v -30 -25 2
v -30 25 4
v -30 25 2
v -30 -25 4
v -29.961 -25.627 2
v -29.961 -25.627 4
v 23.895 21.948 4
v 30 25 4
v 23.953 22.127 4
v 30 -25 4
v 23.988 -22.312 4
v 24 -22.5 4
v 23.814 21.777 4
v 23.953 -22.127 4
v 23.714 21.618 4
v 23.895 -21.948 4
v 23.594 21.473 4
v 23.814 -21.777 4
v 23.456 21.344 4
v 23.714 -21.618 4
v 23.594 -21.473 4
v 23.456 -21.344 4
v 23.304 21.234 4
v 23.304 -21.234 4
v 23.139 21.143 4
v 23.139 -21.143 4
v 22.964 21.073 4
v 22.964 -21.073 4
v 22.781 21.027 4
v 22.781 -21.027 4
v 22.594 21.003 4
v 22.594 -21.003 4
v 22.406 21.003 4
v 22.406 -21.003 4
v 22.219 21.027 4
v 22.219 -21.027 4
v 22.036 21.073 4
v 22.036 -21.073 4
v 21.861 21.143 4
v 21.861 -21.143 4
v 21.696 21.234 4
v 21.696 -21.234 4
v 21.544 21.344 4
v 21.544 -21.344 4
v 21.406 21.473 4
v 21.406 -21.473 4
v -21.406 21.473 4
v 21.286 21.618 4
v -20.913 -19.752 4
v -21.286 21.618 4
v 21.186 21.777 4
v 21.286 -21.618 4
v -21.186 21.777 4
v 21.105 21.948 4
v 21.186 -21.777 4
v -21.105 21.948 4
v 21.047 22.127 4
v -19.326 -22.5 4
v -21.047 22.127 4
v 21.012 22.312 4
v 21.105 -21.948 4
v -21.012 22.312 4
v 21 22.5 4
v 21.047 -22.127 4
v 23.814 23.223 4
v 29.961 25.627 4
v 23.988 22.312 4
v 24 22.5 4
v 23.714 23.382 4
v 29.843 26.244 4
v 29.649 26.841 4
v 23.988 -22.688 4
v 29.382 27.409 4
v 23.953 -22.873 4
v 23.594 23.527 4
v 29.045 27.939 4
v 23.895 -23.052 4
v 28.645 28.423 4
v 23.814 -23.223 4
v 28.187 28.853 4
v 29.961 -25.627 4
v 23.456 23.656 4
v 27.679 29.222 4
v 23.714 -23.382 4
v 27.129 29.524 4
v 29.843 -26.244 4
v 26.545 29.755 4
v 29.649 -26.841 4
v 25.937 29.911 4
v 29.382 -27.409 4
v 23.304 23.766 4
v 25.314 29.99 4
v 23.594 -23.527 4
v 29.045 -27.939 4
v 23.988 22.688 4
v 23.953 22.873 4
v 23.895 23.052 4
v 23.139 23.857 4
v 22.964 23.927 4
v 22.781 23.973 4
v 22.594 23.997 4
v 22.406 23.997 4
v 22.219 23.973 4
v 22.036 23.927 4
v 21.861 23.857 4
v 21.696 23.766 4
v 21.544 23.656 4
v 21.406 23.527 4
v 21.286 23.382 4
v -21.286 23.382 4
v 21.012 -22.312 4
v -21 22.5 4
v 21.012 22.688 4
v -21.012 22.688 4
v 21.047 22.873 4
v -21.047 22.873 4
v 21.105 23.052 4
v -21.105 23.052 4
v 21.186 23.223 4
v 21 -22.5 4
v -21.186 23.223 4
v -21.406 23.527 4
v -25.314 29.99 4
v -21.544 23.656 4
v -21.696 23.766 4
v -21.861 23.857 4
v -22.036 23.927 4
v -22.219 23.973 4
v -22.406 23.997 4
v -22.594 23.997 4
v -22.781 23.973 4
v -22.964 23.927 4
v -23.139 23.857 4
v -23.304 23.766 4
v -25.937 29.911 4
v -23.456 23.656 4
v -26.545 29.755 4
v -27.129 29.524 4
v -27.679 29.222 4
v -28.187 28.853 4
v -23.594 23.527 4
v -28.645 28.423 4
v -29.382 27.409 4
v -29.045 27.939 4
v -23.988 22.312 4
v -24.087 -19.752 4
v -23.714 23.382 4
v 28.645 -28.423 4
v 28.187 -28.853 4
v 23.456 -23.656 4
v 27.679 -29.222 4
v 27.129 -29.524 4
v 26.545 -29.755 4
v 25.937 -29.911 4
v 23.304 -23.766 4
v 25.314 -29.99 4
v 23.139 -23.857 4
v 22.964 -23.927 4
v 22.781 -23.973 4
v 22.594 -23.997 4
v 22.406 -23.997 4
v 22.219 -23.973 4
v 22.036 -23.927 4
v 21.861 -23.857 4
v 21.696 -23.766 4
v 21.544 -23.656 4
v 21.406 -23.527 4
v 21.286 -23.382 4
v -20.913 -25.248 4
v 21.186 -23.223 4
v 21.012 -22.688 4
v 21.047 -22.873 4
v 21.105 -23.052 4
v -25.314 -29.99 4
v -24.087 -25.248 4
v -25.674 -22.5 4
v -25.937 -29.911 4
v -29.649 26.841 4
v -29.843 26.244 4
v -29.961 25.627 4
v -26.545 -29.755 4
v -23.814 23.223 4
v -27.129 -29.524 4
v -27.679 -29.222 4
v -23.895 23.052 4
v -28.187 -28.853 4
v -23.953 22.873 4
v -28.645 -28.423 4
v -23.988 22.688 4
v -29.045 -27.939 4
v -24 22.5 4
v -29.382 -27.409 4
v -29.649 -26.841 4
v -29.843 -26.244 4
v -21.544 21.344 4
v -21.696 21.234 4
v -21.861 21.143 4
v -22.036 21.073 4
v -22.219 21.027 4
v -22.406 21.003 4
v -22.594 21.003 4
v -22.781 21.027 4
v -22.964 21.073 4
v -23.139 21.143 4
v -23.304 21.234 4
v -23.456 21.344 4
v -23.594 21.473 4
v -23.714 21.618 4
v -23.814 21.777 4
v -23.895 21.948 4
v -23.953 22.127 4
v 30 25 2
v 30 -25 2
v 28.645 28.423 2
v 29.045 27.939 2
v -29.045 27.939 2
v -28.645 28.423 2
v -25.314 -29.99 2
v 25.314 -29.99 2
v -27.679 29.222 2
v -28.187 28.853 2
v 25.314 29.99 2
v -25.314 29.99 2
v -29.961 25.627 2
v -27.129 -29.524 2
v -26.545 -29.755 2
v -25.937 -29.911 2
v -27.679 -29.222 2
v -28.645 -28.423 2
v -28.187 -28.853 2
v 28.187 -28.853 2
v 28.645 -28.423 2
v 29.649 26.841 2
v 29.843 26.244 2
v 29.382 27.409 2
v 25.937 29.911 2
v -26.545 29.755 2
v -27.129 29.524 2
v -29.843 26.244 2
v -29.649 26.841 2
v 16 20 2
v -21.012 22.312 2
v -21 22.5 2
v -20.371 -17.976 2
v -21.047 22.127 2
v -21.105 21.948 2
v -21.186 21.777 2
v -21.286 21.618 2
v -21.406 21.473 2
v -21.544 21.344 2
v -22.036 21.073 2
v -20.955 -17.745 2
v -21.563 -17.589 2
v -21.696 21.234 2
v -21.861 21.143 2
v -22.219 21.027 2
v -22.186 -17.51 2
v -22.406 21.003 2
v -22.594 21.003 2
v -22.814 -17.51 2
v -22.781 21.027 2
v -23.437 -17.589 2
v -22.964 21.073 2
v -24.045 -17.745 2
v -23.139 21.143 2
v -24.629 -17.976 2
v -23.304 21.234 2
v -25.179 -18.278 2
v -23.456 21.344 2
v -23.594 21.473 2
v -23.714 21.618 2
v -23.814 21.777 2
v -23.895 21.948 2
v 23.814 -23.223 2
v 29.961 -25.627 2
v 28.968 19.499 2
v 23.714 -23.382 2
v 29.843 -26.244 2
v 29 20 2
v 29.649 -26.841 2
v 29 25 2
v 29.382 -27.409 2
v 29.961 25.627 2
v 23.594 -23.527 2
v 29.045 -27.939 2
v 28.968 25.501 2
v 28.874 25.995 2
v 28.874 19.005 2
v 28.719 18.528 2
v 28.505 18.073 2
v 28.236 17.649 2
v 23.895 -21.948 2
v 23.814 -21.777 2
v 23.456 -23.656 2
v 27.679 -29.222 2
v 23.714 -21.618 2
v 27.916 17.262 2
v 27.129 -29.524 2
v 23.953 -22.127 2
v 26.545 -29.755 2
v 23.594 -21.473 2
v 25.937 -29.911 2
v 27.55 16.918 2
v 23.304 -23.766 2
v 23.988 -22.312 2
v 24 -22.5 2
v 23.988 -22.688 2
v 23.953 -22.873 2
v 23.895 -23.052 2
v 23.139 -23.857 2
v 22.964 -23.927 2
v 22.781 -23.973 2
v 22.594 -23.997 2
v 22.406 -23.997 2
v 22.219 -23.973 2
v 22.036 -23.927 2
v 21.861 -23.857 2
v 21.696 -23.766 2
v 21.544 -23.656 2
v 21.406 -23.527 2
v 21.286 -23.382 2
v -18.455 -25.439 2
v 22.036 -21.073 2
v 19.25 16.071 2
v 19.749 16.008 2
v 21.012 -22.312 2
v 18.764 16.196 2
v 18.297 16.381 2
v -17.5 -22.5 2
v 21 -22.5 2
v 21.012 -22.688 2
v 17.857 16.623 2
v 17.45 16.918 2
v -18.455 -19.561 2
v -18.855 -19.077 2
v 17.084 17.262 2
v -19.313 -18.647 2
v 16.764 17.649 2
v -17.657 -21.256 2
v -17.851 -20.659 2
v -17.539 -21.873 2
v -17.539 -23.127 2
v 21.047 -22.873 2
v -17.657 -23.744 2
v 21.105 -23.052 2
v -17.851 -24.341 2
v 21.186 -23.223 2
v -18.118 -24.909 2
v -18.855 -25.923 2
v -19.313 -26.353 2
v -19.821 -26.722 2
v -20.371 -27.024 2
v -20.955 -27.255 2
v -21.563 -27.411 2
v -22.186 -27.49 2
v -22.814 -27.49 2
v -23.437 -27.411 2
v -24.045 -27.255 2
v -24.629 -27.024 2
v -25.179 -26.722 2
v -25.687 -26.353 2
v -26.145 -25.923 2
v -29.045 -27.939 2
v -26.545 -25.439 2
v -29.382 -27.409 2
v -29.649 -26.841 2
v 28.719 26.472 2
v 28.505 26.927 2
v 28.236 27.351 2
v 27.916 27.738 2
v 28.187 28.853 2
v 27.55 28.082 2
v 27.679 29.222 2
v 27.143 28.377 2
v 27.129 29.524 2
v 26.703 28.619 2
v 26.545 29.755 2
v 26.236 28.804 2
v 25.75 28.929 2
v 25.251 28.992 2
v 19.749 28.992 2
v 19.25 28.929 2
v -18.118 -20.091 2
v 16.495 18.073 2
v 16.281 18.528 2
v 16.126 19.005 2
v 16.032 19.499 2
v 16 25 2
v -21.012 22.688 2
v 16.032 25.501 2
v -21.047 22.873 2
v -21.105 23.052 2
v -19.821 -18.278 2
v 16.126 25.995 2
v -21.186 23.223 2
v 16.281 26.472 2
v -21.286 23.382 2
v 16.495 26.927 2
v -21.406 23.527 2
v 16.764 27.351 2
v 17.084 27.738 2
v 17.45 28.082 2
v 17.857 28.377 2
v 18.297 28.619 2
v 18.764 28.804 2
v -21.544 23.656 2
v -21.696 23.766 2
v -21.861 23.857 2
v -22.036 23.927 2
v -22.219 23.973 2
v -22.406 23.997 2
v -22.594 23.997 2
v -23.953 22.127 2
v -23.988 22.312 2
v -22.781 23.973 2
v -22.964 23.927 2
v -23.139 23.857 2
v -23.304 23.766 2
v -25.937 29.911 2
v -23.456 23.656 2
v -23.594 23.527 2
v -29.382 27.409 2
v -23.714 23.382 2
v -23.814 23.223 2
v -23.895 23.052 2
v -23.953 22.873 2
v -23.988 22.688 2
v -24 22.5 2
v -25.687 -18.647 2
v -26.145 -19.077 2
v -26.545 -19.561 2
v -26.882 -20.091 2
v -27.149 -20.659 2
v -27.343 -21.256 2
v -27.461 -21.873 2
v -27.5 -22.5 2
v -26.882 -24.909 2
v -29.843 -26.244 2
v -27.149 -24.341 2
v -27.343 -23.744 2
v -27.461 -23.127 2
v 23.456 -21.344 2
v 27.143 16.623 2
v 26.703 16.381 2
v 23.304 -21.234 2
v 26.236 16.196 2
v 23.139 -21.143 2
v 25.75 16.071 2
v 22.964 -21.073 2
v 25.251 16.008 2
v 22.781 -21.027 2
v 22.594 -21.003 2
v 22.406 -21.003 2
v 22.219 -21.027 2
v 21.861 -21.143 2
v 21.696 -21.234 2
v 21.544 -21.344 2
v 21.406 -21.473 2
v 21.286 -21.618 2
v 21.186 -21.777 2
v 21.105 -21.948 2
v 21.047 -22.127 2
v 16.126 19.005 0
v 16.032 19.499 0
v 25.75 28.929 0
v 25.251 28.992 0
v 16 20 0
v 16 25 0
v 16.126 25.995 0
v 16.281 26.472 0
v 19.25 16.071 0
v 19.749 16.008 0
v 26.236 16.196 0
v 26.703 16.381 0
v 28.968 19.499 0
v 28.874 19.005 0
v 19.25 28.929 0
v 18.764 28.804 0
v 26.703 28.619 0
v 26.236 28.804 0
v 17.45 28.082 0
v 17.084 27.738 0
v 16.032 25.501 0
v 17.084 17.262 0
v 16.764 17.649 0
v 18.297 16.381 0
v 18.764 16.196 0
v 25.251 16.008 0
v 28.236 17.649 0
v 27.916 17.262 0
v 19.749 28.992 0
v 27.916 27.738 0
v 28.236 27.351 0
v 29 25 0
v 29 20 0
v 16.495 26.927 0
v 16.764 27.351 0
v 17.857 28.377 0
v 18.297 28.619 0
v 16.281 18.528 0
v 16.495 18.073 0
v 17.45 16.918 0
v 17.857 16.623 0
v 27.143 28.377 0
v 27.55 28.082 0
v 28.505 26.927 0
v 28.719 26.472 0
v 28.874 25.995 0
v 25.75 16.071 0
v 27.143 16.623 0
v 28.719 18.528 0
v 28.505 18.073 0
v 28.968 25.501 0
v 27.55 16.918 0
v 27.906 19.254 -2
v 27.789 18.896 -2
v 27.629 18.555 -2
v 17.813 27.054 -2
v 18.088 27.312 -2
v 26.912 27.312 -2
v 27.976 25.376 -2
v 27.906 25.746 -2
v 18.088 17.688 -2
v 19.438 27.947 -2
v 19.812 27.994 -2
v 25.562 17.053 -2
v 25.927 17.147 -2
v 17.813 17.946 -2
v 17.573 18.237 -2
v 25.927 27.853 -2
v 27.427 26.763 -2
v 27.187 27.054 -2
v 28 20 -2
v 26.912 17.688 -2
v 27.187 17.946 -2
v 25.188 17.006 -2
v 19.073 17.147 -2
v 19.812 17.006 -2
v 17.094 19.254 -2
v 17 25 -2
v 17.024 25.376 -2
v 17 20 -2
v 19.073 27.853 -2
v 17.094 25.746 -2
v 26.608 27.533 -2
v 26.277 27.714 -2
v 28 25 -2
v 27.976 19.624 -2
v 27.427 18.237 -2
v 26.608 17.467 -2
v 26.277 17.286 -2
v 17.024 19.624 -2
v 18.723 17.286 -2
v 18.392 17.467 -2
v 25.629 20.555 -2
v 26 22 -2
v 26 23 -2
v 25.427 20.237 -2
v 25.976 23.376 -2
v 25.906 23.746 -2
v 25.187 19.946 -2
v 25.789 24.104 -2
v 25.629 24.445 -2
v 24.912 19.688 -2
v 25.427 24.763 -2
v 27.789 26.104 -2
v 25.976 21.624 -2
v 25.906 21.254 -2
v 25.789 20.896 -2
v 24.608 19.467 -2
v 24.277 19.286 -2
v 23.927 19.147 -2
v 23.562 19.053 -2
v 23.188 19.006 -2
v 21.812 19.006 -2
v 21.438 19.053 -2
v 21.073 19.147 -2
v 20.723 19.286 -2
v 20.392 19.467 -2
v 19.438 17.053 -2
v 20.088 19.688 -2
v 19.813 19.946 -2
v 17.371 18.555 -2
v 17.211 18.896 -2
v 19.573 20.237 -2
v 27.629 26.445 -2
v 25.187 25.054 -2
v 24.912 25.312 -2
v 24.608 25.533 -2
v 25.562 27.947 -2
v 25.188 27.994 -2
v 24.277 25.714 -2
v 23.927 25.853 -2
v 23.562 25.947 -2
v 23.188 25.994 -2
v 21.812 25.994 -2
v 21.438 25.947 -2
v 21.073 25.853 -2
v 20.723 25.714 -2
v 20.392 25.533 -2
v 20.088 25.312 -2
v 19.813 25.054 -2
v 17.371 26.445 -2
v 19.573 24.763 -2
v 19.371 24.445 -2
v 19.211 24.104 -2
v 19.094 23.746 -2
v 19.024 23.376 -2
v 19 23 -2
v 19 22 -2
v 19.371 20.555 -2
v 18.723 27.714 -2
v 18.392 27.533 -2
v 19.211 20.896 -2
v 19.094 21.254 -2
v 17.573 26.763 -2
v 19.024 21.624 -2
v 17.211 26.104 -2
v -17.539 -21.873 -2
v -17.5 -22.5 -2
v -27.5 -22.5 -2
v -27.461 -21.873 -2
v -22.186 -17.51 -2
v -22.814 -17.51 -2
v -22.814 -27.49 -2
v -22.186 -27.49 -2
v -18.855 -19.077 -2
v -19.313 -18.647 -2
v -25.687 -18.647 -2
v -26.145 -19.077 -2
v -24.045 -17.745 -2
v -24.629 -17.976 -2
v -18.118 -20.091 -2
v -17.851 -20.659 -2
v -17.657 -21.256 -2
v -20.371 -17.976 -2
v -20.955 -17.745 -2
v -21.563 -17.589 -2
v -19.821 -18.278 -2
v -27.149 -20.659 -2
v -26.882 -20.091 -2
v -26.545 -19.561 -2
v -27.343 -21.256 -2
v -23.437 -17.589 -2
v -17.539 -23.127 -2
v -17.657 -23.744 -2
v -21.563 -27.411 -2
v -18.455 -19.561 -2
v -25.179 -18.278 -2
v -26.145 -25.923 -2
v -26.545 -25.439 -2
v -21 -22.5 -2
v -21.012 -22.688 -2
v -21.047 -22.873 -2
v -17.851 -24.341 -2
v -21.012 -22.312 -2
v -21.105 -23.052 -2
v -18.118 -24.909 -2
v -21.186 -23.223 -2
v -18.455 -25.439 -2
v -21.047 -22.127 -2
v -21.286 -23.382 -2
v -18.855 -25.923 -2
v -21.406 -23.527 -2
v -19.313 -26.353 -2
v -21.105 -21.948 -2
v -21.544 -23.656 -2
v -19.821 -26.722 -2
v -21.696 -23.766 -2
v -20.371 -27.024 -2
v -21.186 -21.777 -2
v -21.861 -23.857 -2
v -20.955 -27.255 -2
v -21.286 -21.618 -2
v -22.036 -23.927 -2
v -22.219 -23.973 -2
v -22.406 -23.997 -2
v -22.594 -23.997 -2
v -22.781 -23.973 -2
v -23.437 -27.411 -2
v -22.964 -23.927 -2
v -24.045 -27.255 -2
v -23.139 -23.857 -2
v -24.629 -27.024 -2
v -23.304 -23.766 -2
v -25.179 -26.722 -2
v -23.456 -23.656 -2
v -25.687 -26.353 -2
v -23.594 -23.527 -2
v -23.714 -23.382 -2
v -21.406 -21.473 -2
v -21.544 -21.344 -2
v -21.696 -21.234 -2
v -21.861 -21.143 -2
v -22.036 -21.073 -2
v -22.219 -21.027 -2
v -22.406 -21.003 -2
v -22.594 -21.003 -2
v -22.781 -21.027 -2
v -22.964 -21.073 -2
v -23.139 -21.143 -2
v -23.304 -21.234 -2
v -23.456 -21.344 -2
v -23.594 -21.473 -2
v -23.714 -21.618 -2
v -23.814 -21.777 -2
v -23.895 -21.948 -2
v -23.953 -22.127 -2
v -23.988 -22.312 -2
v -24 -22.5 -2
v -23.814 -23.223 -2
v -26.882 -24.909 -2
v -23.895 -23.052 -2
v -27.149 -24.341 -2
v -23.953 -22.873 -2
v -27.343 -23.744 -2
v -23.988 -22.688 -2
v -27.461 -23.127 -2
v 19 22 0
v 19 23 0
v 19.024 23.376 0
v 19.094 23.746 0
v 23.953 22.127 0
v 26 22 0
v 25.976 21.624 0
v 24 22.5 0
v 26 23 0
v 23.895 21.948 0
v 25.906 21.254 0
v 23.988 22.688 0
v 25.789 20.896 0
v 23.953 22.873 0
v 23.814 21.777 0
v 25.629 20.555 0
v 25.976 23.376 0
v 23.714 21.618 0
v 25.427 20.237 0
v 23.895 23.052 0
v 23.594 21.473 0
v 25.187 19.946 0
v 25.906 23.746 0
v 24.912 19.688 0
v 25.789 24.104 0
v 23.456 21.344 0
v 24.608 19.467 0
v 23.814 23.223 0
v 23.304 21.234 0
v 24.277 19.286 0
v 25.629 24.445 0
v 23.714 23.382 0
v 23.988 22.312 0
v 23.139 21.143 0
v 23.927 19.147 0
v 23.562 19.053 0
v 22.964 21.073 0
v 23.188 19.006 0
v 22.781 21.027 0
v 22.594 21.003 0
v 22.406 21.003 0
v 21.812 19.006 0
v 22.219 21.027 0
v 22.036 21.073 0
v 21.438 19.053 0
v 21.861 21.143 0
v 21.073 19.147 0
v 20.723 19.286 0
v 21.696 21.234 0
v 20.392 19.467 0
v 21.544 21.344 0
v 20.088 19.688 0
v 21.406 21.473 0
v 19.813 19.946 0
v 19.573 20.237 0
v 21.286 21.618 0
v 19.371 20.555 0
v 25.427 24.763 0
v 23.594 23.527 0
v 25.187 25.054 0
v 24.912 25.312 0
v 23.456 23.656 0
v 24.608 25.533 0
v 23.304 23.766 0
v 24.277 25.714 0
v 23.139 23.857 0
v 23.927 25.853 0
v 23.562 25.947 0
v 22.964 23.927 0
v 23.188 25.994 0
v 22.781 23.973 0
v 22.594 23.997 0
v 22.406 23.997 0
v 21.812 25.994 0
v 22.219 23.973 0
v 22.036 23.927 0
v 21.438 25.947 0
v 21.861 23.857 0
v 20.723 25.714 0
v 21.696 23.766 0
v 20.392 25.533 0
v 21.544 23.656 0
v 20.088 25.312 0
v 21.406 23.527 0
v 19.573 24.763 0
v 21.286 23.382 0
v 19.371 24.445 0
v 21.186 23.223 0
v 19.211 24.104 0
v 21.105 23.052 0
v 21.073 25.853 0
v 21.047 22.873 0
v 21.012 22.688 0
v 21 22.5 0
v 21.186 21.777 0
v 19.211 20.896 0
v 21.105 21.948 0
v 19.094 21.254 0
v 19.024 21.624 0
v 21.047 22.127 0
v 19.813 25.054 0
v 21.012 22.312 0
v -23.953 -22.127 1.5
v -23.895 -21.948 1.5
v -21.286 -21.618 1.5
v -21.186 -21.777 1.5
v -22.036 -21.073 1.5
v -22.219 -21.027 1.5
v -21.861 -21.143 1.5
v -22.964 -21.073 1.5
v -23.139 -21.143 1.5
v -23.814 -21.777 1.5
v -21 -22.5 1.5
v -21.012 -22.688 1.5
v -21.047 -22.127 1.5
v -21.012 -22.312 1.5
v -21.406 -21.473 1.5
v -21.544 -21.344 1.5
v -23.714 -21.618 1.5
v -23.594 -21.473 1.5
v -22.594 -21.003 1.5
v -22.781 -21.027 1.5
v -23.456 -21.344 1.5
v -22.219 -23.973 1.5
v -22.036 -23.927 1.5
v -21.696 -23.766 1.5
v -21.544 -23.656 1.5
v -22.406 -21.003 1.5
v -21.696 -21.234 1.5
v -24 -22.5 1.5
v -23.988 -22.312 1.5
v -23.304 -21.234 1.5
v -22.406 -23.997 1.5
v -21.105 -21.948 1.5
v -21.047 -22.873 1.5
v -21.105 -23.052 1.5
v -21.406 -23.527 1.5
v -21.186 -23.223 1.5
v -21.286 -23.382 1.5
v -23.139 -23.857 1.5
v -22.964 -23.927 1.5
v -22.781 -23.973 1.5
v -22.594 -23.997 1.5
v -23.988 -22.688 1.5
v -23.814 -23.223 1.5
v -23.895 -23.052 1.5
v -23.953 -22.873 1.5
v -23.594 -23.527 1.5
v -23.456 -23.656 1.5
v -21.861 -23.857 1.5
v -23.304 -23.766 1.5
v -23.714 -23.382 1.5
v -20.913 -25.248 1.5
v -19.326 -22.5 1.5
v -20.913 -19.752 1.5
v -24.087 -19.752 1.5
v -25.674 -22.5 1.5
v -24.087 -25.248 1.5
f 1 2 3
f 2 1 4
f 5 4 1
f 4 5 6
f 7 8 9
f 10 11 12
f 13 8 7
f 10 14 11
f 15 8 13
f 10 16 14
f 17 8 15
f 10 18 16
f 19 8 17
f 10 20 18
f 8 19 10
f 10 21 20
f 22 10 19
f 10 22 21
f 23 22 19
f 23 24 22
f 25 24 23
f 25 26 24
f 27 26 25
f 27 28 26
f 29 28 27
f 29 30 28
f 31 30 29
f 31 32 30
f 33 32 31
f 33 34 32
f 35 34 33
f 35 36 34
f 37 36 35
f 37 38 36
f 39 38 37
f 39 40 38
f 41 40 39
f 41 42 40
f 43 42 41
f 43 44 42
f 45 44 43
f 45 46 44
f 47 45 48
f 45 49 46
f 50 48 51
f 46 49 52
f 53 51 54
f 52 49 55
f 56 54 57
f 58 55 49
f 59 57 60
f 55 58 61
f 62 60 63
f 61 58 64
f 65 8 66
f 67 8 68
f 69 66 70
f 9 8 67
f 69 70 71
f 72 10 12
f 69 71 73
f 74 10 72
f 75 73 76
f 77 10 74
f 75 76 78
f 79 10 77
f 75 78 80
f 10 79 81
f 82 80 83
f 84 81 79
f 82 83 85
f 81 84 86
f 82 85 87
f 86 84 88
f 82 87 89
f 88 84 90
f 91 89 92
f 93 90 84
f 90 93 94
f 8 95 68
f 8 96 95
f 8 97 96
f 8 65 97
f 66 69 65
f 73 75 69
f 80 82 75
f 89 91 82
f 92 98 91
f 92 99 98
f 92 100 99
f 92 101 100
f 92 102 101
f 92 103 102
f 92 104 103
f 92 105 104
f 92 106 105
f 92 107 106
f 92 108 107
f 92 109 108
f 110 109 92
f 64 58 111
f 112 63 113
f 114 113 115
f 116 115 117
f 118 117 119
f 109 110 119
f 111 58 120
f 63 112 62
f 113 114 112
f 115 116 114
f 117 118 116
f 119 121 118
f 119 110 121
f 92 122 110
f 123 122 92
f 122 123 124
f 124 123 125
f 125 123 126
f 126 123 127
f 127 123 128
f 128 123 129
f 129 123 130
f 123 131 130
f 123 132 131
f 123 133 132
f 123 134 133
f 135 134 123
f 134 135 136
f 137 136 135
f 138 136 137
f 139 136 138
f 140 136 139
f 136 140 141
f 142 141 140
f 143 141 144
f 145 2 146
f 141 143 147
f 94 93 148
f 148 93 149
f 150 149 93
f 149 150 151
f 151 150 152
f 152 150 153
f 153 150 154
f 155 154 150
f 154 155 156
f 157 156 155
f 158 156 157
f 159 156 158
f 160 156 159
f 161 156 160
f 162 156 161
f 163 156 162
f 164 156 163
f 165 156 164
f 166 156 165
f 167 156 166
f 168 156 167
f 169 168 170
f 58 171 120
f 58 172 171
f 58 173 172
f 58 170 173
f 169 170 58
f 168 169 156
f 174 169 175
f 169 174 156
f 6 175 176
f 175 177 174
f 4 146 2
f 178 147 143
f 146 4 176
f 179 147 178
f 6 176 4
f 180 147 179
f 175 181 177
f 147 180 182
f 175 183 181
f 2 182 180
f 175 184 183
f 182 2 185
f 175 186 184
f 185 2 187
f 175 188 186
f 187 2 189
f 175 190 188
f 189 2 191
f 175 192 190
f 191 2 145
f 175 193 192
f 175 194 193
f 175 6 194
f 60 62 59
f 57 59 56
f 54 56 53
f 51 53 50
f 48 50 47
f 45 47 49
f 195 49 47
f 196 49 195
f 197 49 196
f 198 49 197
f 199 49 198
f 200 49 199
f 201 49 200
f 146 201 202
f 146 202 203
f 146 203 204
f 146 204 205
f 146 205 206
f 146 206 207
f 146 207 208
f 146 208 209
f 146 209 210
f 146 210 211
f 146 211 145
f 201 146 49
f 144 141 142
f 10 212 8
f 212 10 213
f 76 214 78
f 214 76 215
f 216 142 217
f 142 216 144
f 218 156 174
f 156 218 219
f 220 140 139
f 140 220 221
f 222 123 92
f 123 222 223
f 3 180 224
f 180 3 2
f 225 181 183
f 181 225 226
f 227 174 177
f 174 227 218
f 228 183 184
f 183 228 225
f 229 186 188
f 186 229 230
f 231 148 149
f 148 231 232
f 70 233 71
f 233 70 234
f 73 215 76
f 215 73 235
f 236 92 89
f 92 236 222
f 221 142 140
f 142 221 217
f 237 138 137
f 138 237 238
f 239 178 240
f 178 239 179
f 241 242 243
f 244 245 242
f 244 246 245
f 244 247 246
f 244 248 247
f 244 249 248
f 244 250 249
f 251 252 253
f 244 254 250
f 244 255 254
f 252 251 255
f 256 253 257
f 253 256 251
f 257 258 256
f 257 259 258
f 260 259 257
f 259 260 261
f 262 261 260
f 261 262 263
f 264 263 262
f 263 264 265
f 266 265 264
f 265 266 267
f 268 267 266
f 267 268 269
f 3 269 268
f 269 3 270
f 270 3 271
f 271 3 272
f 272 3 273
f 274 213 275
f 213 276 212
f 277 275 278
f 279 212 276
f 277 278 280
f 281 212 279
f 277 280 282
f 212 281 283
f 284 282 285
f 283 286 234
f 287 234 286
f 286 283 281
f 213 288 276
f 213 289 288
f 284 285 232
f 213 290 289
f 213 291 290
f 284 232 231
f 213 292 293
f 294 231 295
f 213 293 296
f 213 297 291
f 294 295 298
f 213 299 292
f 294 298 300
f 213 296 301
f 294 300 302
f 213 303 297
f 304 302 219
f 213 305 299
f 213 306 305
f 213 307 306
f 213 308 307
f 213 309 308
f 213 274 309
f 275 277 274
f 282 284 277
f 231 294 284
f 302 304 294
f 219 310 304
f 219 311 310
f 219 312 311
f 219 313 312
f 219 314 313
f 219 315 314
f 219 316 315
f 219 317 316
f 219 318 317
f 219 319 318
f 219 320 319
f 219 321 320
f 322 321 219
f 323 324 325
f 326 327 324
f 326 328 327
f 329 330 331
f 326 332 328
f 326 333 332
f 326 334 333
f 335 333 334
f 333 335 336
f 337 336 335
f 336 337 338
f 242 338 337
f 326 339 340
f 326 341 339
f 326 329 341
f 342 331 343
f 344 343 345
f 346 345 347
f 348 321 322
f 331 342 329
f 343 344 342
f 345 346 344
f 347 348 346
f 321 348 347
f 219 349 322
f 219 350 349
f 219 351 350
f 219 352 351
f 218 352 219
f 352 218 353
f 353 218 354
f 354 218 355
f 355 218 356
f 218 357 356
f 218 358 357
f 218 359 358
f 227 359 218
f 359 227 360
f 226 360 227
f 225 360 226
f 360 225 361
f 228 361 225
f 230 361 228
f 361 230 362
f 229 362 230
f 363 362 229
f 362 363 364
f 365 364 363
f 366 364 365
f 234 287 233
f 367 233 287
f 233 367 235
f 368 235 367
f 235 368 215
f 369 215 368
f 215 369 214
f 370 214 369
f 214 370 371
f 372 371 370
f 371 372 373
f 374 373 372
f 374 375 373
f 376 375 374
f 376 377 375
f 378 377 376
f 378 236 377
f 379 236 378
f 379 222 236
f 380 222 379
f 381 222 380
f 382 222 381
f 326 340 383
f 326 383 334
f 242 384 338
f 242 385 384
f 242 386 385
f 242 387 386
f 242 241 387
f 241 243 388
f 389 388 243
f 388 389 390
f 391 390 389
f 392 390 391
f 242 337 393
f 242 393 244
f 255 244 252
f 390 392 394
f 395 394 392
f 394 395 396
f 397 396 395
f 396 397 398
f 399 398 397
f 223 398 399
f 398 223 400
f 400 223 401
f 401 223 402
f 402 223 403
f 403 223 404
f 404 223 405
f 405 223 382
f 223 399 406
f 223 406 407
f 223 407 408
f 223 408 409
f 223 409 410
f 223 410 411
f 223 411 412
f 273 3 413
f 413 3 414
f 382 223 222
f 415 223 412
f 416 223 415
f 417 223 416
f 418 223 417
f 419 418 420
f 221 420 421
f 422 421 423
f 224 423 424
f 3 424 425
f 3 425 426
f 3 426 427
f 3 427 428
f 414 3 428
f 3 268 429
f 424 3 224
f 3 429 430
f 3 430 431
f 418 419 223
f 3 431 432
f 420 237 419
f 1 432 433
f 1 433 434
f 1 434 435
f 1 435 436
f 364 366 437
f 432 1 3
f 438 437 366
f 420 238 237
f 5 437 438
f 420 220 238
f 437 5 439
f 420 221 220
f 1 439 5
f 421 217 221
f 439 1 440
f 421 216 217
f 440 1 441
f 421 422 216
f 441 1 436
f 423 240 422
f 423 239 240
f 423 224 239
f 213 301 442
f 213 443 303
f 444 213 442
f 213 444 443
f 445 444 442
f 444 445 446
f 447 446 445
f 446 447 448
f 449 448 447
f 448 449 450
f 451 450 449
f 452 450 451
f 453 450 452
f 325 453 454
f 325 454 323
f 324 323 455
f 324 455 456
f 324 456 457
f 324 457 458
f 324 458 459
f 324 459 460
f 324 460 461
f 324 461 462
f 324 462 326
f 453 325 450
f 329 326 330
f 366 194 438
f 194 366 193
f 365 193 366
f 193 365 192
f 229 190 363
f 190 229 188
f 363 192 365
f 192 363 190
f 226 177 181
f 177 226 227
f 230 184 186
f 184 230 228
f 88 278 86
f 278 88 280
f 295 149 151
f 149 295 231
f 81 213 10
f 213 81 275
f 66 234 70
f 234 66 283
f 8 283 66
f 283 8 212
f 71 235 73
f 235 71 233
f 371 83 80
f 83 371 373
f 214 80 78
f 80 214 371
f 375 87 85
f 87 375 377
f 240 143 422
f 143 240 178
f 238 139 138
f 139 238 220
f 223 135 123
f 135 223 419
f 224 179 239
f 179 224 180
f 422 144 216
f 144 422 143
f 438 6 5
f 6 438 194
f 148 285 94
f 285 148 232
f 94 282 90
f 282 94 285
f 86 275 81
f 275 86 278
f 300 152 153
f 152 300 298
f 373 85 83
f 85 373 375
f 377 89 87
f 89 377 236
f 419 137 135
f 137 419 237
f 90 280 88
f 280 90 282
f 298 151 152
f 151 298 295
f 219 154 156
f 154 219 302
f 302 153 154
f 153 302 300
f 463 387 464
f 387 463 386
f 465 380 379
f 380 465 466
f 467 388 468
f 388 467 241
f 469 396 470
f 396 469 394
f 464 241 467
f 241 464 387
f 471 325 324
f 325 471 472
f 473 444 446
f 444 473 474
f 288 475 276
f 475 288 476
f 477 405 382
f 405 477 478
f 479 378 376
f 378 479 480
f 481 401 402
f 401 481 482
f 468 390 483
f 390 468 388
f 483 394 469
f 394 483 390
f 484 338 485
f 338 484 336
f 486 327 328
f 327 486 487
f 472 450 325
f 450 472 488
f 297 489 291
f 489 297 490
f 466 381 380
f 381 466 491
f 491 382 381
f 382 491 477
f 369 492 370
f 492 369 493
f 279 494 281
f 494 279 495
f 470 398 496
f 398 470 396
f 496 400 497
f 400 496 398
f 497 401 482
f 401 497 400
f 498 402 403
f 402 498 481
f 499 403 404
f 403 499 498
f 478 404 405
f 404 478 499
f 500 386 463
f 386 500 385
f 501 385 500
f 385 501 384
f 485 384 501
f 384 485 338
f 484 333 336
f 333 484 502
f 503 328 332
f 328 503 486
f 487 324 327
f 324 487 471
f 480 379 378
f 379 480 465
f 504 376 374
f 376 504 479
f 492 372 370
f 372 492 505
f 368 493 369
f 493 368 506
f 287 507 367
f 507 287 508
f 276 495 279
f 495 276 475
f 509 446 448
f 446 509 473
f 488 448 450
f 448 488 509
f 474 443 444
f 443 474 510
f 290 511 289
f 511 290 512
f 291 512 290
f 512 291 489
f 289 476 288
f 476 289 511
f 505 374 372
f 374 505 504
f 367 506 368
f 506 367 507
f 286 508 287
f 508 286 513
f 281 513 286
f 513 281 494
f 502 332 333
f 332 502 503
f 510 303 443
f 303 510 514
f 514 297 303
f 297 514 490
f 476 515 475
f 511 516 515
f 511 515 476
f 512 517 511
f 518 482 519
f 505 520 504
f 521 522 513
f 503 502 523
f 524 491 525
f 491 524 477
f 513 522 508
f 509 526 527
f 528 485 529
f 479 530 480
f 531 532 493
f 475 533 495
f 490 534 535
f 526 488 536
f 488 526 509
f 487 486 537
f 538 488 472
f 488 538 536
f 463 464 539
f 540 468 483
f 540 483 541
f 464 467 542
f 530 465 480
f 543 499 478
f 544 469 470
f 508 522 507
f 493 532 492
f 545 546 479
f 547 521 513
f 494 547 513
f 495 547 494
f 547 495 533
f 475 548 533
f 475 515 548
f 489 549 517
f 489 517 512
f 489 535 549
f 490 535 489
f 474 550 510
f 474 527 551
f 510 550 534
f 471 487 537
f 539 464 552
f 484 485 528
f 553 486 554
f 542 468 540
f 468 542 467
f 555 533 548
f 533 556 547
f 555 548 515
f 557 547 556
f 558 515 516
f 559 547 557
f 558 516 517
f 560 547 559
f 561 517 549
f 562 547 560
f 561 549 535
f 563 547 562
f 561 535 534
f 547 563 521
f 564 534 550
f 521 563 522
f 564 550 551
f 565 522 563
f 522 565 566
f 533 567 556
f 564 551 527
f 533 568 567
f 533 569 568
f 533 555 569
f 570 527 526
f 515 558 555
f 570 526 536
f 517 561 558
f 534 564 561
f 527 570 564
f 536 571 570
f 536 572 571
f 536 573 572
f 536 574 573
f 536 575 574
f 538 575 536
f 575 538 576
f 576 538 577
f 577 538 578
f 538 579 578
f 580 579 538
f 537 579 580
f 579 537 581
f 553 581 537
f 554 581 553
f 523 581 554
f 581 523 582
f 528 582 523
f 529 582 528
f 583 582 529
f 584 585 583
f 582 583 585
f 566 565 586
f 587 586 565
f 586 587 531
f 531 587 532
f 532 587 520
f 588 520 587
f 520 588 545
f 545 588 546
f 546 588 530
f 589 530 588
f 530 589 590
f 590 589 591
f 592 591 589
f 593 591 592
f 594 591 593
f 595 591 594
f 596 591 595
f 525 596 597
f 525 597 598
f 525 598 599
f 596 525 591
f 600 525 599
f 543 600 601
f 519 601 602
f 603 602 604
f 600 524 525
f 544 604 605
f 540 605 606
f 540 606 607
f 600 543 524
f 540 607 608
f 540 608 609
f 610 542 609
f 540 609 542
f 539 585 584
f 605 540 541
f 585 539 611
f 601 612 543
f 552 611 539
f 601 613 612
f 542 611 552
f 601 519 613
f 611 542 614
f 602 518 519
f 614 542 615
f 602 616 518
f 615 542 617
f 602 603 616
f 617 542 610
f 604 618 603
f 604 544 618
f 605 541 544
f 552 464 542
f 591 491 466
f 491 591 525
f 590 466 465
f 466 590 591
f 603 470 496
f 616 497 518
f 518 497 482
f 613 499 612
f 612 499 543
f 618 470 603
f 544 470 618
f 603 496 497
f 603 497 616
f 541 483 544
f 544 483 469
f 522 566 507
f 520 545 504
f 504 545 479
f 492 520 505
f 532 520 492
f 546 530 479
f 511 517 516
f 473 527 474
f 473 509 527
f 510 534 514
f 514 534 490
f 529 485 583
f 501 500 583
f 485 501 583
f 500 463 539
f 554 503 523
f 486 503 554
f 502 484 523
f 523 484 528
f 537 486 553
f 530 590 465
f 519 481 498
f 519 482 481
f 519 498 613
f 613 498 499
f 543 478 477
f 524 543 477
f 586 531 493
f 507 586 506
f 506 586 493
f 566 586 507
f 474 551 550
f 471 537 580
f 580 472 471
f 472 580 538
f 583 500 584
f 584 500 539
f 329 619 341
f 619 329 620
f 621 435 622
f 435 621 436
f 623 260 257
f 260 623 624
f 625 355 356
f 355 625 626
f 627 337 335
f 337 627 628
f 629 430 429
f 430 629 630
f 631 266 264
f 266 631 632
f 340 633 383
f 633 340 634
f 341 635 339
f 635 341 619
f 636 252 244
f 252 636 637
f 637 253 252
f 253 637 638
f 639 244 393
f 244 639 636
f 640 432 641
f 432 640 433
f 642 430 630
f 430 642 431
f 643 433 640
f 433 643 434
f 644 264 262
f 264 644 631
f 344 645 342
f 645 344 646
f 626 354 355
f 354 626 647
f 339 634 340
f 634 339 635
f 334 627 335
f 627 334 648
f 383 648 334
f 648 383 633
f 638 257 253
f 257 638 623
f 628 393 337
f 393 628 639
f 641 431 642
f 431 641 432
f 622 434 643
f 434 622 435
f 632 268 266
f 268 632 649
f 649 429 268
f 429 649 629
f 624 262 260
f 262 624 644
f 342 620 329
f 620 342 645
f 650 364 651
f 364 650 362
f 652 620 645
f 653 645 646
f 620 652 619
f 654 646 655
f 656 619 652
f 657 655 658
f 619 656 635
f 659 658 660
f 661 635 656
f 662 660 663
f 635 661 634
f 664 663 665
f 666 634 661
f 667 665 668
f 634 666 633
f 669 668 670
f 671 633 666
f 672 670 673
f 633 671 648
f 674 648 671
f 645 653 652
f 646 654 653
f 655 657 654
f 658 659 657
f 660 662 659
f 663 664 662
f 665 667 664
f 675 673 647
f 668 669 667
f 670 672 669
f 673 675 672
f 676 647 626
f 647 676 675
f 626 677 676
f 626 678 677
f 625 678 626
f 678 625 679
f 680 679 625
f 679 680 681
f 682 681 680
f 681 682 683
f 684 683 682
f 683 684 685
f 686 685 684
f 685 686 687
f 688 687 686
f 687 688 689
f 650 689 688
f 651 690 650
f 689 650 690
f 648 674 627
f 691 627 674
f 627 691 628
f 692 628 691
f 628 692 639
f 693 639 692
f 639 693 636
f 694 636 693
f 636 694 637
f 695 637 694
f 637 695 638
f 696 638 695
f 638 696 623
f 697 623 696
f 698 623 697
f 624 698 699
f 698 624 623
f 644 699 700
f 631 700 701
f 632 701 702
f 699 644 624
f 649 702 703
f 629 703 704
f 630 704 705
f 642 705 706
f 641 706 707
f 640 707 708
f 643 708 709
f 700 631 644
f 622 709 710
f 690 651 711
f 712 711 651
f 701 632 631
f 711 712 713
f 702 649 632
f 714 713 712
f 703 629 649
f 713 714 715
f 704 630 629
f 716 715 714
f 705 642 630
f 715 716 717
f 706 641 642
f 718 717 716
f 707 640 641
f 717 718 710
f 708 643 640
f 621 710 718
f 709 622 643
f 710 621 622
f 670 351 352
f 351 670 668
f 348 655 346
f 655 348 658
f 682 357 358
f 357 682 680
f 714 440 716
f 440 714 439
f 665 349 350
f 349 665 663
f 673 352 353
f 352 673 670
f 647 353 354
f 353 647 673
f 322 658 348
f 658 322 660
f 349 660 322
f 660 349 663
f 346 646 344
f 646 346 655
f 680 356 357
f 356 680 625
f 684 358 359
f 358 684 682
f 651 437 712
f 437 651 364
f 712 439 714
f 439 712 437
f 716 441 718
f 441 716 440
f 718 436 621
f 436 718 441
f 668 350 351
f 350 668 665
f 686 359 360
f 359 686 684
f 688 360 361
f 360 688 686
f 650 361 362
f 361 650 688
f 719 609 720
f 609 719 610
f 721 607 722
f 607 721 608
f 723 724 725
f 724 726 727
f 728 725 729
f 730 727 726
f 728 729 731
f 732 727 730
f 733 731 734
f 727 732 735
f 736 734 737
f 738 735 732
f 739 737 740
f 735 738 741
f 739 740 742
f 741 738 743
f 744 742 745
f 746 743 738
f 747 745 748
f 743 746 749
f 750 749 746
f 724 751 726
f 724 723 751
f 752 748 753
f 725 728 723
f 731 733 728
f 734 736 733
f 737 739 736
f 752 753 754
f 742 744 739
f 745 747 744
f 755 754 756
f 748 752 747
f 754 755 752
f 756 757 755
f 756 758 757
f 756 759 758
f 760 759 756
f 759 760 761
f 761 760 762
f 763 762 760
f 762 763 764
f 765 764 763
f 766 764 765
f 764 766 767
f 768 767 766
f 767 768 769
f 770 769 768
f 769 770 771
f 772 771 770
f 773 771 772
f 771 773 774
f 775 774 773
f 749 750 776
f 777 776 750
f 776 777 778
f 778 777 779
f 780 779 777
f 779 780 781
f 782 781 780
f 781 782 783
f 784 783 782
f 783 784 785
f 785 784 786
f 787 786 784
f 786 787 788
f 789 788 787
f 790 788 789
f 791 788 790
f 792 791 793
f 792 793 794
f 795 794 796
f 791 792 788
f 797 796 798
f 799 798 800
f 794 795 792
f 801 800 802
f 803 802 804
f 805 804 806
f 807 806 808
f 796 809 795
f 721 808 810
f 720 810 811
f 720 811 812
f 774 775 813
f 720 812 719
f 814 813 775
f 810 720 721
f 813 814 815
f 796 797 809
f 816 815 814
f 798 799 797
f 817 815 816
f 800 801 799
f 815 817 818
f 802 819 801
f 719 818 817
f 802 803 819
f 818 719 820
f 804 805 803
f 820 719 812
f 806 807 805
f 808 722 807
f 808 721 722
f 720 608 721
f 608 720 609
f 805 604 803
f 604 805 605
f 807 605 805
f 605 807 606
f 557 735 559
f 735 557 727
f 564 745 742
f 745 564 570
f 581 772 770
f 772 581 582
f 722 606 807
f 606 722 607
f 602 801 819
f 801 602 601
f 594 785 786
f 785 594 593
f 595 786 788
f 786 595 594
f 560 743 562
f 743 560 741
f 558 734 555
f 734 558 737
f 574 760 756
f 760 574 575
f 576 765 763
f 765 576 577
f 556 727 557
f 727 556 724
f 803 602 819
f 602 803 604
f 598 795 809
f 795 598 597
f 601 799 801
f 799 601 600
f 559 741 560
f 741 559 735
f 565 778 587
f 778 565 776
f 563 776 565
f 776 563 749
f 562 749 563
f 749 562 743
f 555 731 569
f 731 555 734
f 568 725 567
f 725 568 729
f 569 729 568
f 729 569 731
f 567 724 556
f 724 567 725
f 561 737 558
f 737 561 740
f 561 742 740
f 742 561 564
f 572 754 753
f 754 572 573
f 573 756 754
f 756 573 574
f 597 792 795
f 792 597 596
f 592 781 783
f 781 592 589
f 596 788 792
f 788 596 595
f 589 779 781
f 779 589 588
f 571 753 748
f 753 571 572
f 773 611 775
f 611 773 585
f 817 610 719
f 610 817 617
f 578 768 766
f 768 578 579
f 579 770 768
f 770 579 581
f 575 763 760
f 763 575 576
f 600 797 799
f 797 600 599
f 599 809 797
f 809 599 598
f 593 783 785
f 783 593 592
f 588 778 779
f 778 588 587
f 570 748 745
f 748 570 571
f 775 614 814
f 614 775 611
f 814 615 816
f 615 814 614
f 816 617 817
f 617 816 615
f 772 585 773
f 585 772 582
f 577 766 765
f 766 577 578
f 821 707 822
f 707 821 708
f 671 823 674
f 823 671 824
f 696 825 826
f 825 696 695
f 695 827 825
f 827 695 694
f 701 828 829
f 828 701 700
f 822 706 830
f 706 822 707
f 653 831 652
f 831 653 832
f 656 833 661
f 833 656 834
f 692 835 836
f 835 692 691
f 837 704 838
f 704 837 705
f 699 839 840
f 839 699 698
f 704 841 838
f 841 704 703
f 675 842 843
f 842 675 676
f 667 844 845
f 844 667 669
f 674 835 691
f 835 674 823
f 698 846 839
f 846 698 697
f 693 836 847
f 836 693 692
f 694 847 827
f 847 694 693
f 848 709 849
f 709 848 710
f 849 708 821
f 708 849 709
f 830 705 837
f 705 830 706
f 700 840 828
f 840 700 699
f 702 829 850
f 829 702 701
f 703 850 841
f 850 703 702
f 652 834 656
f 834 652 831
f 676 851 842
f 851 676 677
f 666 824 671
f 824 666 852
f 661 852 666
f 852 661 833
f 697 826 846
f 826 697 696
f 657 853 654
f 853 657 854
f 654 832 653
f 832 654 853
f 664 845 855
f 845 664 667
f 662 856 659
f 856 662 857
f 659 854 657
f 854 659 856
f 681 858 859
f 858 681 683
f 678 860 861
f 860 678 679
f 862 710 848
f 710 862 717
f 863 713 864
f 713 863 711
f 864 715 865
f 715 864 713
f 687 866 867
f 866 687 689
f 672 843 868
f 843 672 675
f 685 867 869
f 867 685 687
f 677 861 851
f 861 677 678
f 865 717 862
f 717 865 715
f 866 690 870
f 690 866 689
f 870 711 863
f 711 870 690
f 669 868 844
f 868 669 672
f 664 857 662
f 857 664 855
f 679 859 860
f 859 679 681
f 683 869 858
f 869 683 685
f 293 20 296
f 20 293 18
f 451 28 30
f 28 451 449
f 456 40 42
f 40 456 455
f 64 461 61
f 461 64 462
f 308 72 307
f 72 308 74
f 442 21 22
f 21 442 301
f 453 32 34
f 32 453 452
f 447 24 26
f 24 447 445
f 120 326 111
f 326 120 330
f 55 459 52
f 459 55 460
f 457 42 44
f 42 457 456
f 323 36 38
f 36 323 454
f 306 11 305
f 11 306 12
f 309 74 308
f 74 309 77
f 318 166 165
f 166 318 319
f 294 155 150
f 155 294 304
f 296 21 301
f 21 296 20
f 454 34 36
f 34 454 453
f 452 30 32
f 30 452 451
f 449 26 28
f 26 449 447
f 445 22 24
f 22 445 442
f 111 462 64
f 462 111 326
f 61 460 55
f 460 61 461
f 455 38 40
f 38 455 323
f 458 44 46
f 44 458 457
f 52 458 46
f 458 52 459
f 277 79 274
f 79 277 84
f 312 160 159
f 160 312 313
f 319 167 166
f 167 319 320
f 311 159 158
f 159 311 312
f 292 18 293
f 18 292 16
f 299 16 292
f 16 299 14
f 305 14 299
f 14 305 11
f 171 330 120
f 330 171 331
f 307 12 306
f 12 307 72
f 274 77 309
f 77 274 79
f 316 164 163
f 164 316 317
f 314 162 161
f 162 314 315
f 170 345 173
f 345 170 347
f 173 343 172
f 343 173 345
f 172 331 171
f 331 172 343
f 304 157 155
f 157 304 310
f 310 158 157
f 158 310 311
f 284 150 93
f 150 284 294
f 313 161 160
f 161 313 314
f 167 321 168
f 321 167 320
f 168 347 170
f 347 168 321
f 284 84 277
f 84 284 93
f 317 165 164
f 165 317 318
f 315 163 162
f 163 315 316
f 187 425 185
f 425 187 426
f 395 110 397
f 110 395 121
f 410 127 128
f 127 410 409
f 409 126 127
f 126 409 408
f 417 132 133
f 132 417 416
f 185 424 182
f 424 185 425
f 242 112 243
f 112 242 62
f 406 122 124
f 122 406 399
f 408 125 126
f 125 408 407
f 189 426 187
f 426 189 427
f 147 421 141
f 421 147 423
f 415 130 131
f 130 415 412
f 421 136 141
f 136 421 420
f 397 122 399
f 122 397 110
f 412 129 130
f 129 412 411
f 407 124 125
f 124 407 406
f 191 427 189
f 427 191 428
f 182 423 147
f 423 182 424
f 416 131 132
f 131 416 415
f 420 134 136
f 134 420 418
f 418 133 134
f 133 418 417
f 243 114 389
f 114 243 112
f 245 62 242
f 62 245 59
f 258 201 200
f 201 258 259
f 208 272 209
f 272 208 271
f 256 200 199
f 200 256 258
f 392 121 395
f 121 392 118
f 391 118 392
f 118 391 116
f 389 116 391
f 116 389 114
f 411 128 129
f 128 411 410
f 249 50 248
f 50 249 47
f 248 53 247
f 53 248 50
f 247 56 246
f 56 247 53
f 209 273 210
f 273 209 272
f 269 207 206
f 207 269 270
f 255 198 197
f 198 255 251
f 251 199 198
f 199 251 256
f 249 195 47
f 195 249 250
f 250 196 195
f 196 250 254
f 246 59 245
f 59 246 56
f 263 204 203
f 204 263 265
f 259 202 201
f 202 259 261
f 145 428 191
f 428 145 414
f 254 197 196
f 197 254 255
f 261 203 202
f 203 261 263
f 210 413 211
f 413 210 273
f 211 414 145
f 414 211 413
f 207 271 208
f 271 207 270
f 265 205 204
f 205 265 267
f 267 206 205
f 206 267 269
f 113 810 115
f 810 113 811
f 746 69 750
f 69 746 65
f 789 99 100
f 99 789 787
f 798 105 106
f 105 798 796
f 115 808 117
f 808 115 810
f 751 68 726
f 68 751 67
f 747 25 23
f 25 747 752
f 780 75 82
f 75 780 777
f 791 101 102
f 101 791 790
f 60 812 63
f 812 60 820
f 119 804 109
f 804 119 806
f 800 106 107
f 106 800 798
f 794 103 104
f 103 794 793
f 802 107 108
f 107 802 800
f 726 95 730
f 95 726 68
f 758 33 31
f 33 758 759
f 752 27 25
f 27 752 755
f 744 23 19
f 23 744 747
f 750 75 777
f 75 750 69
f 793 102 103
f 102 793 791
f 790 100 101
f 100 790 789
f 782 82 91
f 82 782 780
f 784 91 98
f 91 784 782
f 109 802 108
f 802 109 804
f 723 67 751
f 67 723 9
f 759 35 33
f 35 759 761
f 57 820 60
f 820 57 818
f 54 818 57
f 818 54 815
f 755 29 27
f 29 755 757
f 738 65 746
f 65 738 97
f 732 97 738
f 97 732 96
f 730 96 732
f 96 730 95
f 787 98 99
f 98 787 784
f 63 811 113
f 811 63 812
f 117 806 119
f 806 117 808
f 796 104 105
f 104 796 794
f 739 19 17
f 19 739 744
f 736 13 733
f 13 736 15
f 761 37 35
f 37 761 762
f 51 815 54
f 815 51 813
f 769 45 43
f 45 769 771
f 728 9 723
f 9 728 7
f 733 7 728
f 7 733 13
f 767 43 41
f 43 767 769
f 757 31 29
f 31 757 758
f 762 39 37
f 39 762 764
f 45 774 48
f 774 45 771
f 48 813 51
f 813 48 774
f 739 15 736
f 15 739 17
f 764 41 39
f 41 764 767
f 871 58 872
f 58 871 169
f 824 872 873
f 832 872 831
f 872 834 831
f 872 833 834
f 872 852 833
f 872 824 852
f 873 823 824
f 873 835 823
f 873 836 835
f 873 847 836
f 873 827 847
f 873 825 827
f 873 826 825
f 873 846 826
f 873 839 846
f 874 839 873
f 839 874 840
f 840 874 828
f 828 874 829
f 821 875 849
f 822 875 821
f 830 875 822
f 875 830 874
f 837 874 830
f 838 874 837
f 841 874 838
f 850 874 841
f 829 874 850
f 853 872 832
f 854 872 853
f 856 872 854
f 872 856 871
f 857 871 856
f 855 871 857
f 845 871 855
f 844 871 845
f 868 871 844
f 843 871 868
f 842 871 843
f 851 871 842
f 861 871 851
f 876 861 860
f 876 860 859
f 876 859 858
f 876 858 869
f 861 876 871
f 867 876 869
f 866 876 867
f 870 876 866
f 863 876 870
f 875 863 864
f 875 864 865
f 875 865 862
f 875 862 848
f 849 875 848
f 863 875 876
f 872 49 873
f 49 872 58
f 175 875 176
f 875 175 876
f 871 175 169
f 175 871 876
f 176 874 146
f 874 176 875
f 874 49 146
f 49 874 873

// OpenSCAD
$fn = 50;


difference() {
	union() {
		translate(v = [0, 0, 2]) {
			rotate(a = [0, 0, 0]) {
				hull() {
					translate(v = [-25.0000000000, 25.0000000000, 0]) {
						rotate(a = [0, 0, 0]) {
							translate(v = [0, 0, 0]) {
								rotate(a = [0, 0, 0]) {
									cylinder(h = 2, r = 5);
								}
							}
						}
					}
					translate(v = [25.0000000000, 25.0000000000, 0]) {
						rotate(a = [0, 0, 0]) {
							translate(v = [0, 0, 0]) {
								rotate(a = [0, 0, 0]) {
									cylinder(h = 2, r = 5);
								}
							}
						}
					}
					translate(v = [-25.0000000000, -25.0000000000, 0]) {
						rotate(a = [0, 0, 0]) {
							translate(v = [0, 0, 0]) {
								rotate(a = [0, 0, 0]) {
									cylinder(h = 2, r = 5);
								}
							}
						}
					}
					translate(v = [25.0000000000, -25.0000000000, 0]) {
						rotate(a = [0, 0, 0]) {
							translate(v = [0, 0, 0]) {
								rotate(a = [0, 0, 0]) {
									cylinder(h = 2, r = 5);
								}
							}
						}
					}
				}
			}
		}
		translate(v = [22.5000000000, 22.5000000000, 0]) {
			rotate(a = [0, 0, 0]) {
				hull() {
					translate(v = [-2.5000000000, 2.5000000000, 0]) {
						rotate(a = [0, 0, 0]) {
							cylinder(h = 2, r1 = 4.0000000000, r2 = 4.0000000000);
						}
					}
					translate(v = [2.5000000000, 2.5000000000, 0]) {
						rotate(a = [0, 0, 0]) {
							cylinder(h = 2, r1 = 4.0000000000, r2 = 4.0000000000);
						}
					}
					translate(v = [-2.5000000000, -2.5000000000, 0]) {
						rotate(a = [0, 0, 0]) {
							cylinder(h = 2, r1 = 4.0000000000, r2 = 4.0000000000);
						}
					}
					translate(v = [2.5000000000, -2.5000000000, 0]) {
						rotate(a = [0, 0, 0]) {
							cylinder(h = 2, r1 = 4.0000000000, r2 = 4.0000000000);
						}
					}
				}
			}
		}
		translate(v = [22.5000000000, 22.5000000000, -2]) {
			rotate(a = [0, 180, 0]) {
				hull() {
					translate(v = [-2.5000000000, 2.5000000000, 0]) {
						rotate(a = [0, 180, 0]) {
							cylinder(h = 2, r1 = 3.0000000000, r2 = 4.0000000000);
						}
					}
					translate(v = [2.5000000000, 2.5000000000, 0]) {
						rotate(a = [0, 180, 0]) {
							cylinder(h = 2, r1 = 3.0000000000, r2 = 4.0000000000);
						}
					}
					translate(v = [-2.5000000000, -2.5000000000, 0]) {
						rotate(a = [0, 180, 0]) {
							cylinder(h = 2, r1 = 3.0000000000, r2 = 4.0000000000);
						}
					}
					translate(v = [2.5000000000, -2.5000000000, 0]) {
						rotate(a = [0, 180, 0]) {
							cylinder(h = 2, r1 = 3.0000000000, r2 = 4.0000000000);
						}
					}
				}
			}
		}
		translate(v = [-22.5000000000, -22.5000000000, -2.0000000000]) {
			rotate(a = [0, 0, 0]) {
				cylinder(h = 4, r = 5);
			}
		}
	}
	union() {
		translate(v = [22.5000000000, 22.5000000000, -2]) {
			rotate(a = [0, 0, 0]) {
				hull() {
					translate(v = [-0.5000000000, 0.5000000000, 0]) {
						rotate(a = [0, 0, 0]) {
							translate(v = [0, 0, 0]) {
								rotate(a = [0, 0, 0]) {
									cylinder(h = 2, r = 3.0000000000);
								}
							}
						}
					}
					translate(v = [0.5000000000, 0.5000000000, 0]) {
						rotate(a = [0, 0, 0]) {
							translate(v = [0, 0, 0]) {
								rotate(a = [0, 0, 0]) {
									cylinder(h = 2, r = 3.0000000000);
								}
							}
						}
					}
					translate(v = [-0.5000000000, -0.5000000000, 0]) {
						rotate(a = [0, 0, 0]) {
							translate(v = [0, 0, 0]) {
								rotate(a = [0, 0, 0]) {
									cylinder(h = 2, r = 3.0000000000);
								}
							}
						}
					}
					translate(v = [0.5000000000, -0.5000000000, 0]) {
						rotate(a = [0, 0, 0]) {
							translate(v = [0, 0, 0]) {
								rotate(a = [0, 0, 0]) {
									cylinder(h = 2, r = 3.0000000000);
								}
							}
						}
					}
				}
			}
		}
		translate(v = [-22.5000000000, -22.5000000000, -50]) {
			rotate(a = [0, 0, 0]) {
				cylinder(h = 100, r = 1.5000000000);
			}
		}
		translate(v = [22.5000000000, -22.5000000000, -50]) {
			rotate(a = [0, 0, 0]) {
				cylinder(h = 100, r = 1.5000000000);
			}
		}
		translate(v = [-22.5000000000, 22.5000000000, -50]) {
			rotate(a = [0, 0, 0]) {
				cylinder(h = 100, r = 1.5000000000);
			}
		}
		translate(v = [22.5000000000, 22.5000000000, -50]) {
			rotate(a = [0, 0, 0]) {
				cylinder(h = 100, r = 1.5000000000);
			}
		}
		translate(v = [-22.5000000000, -22.5000000000, 1.5000000000]) {
			rotate(a = [0, 0, 0]) {
				#translate(v = [0, 0, 0]) {
					rotate(a = [0, 0, 0]) {
						linear_extrude(height = 2.5000000000) {
							polygon(points = [[3.1735000000, 0.0000000000], [1.5867500000, 2.7483316189], [-1.5867500000, 2.7483316189], [-3.1735000000, 0.0000000000], [-1.5867500000, -2.7483316189], [1.5867500000, -2.7483316189]]);
						}
					}
				}
			}
		}
	}
}
